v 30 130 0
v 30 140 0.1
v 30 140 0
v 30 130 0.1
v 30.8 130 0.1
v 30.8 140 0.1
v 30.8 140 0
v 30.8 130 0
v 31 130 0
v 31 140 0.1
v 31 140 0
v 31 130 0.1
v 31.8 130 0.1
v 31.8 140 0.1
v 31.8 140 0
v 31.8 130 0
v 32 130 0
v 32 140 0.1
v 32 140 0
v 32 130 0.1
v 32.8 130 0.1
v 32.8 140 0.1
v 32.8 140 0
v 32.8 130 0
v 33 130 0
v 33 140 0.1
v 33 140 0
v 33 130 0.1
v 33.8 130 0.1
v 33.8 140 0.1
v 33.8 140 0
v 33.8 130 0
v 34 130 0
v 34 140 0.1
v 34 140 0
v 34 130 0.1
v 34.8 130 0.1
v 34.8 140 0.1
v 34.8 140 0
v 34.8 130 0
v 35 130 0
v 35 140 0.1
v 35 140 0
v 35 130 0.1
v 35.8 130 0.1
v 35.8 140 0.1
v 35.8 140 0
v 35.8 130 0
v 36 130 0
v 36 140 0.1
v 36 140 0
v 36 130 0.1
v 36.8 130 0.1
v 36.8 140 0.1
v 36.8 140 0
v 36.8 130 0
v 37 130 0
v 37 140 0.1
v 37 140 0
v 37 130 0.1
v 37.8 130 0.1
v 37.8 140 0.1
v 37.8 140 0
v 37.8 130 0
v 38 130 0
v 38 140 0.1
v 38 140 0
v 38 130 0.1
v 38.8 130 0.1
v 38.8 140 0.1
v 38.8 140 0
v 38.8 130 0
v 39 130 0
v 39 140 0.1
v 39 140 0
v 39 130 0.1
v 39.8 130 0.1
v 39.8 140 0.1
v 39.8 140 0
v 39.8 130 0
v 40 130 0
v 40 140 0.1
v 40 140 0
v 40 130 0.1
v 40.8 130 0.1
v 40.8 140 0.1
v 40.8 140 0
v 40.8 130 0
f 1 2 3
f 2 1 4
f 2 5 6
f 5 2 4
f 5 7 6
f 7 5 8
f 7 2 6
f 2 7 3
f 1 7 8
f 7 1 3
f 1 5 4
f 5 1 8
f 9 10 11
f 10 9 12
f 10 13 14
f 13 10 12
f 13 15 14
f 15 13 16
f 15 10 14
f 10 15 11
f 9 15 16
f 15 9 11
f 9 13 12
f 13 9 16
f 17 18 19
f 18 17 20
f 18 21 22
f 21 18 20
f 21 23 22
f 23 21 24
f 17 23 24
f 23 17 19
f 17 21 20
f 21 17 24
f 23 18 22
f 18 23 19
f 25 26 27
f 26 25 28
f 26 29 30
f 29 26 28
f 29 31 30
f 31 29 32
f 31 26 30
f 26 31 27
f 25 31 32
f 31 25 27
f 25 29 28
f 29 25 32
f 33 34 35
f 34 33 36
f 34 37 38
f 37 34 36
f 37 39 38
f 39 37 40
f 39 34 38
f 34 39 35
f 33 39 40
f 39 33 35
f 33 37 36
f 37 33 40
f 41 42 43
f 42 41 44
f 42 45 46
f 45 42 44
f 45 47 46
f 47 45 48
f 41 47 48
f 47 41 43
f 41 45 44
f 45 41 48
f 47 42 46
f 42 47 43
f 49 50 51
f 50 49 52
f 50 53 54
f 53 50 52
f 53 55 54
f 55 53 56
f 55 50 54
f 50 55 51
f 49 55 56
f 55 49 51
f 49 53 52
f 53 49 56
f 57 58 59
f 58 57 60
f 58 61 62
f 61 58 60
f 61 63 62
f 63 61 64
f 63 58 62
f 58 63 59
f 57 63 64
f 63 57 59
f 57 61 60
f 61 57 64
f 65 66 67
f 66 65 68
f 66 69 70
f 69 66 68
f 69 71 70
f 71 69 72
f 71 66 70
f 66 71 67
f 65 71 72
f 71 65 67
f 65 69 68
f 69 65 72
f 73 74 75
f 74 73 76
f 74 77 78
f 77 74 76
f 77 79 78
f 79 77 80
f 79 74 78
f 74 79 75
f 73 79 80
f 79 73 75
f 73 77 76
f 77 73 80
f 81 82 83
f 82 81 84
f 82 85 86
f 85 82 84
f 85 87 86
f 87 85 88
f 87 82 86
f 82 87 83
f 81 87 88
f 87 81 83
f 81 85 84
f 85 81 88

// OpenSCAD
translate([10+20,10+120,0])
        for (i = [0 : 10]){
            translate([i,0,0])
                cube(size = [0.8,10,0.1]);
    }
